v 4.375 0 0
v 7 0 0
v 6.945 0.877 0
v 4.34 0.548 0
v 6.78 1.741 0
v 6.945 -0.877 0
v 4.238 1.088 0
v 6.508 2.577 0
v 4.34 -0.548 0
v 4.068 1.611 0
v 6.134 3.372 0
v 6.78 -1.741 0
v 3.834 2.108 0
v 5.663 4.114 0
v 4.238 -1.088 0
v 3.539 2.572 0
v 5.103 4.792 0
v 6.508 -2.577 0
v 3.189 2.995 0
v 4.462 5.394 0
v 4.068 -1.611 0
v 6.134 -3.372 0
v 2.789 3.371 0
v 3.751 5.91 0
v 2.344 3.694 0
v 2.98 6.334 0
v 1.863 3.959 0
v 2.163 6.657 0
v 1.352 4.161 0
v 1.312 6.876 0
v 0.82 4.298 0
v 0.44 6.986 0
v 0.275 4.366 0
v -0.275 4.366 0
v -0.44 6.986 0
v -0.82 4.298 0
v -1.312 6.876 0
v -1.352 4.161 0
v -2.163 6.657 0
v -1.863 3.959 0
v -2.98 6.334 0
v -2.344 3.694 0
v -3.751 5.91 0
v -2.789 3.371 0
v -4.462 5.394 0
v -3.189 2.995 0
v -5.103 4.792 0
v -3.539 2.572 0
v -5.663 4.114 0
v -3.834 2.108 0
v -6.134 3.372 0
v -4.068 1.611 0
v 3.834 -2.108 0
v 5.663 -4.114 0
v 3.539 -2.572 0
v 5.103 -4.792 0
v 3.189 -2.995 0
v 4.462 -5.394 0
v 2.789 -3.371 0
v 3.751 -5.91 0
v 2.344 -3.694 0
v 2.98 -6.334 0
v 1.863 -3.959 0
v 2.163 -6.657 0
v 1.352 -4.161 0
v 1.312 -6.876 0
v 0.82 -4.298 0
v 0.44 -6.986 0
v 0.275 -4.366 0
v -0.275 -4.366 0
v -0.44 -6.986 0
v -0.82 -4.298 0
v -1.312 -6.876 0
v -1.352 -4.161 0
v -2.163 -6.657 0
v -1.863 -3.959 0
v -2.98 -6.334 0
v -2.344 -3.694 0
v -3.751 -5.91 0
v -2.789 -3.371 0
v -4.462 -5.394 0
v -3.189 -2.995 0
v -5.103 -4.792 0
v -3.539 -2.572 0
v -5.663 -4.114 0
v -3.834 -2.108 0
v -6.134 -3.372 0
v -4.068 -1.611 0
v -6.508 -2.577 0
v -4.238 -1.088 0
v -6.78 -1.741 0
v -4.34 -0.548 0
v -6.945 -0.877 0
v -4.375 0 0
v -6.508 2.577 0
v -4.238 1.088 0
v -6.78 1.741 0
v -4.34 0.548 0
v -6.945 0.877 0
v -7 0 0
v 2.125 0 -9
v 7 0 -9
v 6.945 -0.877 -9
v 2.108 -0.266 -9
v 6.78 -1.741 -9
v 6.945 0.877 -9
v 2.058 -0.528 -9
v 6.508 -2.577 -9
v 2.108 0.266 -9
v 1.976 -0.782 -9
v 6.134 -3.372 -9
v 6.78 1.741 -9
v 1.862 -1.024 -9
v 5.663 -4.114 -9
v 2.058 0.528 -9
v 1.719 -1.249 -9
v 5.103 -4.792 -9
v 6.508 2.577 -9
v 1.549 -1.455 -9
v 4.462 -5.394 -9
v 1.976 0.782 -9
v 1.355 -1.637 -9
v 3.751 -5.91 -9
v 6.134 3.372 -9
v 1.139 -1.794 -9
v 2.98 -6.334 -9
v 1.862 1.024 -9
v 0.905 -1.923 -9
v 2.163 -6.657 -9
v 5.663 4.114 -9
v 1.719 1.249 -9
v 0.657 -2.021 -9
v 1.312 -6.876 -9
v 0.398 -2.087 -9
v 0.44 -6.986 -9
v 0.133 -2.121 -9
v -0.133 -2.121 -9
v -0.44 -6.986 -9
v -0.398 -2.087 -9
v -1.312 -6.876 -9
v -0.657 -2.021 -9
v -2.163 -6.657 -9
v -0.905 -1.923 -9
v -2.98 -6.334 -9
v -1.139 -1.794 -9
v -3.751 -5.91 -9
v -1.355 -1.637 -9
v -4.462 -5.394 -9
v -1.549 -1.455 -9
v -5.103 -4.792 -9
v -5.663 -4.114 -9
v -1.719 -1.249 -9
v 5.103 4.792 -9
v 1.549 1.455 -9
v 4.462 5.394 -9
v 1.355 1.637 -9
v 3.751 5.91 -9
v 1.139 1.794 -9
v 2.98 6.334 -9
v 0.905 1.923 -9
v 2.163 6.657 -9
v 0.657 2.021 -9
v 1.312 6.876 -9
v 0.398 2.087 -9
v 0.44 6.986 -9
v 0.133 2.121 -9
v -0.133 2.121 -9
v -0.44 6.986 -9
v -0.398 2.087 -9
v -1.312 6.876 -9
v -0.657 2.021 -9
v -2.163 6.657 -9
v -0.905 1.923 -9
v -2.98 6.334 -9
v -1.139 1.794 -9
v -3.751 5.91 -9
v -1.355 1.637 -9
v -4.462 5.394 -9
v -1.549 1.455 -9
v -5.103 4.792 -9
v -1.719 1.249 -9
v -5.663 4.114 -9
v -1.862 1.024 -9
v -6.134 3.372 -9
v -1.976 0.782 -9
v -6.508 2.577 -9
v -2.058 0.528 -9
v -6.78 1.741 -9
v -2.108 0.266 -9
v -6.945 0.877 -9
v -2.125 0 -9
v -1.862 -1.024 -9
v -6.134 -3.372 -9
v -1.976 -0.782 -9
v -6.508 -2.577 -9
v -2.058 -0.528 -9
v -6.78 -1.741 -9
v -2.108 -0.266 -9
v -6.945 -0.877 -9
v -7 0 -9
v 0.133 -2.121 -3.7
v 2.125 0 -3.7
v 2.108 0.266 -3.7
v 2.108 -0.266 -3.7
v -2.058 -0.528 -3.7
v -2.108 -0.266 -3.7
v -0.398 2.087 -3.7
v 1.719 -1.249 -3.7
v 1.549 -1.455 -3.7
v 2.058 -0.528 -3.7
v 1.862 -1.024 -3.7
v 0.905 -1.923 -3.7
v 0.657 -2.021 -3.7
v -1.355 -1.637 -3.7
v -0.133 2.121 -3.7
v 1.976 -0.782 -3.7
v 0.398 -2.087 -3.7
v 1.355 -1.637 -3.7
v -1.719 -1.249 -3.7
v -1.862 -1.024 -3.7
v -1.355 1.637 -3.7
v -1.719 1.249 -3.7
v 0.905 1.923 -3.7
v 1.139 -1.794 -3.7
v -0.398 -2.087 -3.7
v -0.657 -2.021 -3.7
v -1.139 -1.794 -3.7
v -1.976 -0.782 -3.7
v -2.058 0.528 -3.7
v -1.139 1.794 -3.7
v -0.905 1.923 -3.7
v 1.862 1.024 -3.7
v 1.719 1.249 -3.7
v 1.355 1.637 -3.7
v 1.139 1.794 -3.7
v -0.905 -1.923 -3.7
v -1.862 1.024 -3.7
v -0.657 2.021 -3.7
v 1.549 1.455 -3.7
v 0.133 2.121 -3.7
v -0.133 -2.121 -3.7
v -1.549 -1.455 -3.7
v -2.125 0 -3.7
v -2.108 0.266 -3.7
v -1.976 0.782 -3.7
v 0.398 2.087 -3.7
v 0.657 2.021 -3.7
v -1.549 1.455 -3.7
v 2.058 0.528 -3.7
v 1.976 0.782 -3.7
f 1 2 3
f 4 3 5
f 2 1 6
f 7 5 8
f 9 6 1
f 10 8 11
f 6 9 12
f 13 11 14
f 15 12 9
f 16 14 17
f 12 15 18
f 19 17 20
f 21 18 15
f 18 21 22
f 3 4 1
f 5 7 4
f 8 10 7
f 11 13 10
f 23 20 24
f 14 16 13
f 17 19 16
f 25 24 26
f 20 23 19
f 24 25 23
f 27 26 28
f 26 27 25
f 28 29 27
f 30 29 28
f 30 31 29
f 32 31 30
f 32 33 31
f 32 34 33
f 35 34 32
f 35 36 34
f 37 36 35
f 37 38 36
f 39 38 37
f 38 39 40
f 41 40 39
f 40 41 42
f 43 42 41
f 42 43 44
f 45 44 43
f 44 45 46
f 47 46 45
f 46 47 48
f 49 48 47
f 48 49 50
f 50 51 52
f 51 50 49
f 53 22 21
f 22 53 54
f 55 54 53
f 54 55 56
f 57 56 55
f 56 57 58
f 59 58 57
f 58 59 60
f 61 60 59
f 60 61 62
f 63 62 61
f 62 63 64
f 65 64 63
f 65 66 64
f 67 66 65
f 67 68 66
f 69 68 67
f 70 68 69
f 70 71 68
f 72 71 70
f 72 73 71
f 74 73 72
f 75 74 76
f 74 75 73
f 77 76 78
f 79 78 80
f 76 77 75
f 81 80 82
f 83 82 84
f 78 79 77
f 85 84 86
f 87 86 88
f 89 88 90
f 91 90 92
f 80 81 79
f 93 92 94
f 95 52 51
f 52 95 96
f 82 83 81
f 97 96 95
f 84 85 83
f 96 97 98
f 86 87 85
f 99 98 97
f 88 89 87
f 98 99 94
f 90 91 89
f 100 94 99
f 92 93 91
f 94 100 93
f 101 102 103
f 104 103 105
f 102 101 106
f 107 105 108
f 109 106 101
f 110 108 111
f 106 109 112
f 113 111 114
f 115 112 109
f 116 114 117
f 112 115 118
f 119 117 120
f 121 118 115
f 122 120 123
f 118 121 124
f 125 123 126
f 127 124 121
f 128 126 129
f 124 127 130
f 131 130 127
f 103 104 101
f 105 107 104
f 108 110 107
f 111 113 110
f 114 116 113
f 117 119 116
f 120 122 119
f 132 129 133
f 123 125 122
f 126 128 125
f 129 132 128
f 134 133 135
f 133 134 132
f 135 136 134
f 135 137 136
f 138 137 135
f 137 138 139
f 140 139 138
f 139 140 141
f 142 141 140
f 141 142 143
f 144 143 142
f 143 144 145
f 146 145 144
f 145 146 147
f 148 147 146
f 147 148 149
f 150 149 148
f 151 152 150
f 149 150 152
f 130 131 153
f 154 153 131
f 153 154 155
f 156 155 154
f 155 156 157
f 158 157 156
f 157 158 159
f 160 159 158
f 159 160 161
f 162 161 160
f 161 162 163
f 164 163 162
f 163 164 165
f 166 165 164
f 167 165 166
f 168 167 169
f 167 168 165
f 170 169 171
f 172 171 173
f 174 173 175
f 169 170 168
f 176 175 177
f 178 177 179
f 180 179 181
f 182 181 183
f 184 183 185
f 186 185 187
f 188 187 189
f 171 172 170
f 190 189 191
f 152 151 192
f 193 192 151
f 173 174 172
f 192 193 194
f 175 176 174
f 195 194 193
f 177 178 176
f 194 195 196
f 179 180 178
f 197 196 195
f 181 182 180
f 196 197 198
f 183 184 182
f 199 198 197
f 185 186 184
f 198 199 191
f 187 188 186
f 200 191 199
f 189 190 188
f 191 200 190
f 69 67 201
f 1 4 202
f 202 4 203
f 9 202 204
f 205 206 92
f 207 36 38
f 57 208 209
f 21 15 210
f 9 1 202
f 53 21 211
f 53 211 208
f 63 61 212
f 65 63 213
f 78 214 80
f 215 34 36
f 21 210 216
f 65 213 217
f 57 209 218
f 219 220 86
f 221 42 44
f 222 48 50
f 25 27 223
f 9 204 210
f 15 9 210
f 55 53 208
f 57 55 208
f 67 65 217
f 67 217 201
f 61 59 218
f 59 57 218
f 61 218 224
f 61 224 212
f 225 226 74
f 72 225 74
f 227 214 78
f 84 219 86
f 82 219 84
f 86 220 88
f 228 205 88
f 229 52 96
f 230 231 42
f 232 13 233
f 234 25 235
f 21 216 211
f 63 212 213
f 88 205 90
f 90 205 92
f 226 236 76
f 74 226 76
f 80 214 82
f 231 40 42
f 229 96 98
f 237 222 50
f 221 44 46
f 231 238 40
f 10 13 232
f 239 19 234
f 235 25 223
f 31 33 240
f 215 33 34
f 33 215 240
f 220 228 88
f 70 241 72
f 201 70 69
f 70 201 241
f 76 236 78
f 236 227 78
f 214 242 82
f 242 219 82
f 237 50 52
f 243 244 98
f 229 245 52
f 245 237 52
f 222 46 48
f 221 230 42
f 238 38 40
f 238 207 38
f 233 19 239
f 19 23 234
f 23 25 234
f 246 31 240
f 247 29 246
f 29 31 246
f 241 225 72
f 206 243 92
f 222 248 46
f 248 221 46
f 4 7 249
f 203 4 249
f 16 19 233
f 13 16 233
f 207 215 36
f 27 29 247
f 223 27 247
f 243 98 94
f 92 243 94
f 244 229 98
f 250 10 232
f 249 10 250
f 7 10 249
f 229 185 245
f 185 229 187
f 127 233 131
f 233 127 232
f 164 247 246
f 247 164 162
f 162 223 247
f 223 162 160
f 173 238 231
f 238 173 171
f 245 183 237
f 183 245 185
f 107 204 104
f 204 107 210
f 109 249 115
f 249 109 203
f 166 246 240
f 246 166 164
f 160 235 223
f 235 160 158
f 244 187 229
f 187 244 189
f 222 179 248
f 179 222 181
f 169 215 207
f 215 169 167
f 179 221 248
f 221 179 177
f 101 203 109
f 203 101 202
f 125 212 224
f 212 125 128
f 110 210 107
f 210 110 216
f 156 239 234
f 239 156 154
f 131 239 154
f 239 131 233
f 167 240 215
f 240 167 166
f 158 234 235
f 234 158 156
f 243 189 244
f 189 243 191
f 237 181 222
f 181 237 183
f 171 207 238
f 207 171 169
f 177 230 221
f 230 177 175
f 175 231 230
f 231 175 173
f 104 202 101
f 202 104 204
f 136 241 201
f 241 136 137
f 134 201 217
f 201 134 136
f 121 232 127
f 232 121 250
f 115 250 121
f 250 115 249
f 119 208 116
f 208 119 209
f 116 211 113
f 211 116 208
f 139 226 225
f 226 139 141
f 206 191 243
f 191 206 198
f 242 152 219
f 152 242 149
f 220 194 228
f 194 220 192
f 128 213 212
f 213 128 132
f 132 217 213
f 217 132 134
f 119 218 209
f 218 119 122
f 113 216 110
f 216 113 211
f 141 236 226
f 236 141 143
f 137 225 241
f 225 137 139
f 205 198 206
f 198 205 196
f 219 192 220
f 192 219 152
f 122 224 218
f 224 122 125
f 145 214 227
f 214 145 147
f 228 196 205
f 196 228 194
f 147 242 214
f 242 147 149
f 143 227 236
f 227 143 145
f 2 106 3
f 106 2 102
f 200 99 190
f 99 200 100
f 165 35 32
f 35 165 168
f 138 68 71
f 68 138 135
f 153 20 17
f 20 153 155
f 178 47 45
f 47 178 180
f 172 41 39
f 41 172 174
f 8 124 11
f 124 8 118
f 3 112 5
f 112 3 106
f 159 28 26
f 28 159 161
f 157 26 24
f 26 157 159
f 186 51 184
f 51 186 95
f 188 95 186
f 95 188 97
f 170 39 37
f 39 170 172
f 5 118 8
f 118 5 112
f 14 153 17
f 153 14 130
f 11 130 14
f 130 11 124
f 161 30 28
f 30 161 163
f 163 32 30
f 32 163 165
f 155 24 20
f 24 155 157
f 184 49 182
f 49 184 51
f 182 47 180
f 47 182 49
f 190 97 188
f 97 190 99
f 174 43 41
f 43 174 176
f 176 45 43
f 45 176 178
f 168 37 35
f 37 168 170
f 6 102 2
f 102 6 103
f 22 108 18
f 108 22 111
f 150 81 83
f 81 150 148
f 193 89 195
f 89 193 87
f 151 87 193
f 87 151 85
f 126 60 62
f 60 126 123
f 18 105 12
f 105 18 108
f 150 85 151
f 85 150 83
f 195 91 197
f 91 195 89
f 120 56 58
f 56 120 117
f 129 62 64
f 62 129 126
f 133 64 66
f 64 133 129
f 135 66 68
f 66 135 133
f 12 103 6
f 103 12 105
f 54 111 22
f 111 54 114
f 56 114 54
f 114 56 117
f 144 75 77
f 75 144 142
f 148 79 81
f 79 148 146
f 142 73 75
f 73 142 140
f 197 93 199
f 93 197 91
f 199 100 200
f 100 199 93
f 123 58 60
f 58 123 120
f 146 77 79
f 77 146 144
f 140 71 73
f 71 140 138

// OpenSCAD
$fn = 50;


difference() {
	union() {
		translate(v = [0, 0, -9.0000000000]) {
			cylinder(h = 9, r = 7.0000000000);
		}
	}
	union() {
		translate(v = [0, 0, 0]) {
			rotate(a = [0, 0, 0]) {
				difference() {
					union() {
						translate(v = [0, 0, -9.0000000000]) {
							cylinder(h = 9, r = 2.0000000000);
						}
						translate(v = [0, 0, -3.7000000000]) {
							cylinder(h = 3.7000000000, r1 = 2.1250000000, r2 = 4.3750000000);
						}
						translate(v = [0, 0, -9.0000000000]) {
							cylinder(h = 9, r = 2.1250000000);
						}
						translate(v = [0, 0, -9.0000000000]) {
							cylinder(h = 9, r = 2.0000000000);
						}
					}
					union();
				}
			}
		}
	}
}
